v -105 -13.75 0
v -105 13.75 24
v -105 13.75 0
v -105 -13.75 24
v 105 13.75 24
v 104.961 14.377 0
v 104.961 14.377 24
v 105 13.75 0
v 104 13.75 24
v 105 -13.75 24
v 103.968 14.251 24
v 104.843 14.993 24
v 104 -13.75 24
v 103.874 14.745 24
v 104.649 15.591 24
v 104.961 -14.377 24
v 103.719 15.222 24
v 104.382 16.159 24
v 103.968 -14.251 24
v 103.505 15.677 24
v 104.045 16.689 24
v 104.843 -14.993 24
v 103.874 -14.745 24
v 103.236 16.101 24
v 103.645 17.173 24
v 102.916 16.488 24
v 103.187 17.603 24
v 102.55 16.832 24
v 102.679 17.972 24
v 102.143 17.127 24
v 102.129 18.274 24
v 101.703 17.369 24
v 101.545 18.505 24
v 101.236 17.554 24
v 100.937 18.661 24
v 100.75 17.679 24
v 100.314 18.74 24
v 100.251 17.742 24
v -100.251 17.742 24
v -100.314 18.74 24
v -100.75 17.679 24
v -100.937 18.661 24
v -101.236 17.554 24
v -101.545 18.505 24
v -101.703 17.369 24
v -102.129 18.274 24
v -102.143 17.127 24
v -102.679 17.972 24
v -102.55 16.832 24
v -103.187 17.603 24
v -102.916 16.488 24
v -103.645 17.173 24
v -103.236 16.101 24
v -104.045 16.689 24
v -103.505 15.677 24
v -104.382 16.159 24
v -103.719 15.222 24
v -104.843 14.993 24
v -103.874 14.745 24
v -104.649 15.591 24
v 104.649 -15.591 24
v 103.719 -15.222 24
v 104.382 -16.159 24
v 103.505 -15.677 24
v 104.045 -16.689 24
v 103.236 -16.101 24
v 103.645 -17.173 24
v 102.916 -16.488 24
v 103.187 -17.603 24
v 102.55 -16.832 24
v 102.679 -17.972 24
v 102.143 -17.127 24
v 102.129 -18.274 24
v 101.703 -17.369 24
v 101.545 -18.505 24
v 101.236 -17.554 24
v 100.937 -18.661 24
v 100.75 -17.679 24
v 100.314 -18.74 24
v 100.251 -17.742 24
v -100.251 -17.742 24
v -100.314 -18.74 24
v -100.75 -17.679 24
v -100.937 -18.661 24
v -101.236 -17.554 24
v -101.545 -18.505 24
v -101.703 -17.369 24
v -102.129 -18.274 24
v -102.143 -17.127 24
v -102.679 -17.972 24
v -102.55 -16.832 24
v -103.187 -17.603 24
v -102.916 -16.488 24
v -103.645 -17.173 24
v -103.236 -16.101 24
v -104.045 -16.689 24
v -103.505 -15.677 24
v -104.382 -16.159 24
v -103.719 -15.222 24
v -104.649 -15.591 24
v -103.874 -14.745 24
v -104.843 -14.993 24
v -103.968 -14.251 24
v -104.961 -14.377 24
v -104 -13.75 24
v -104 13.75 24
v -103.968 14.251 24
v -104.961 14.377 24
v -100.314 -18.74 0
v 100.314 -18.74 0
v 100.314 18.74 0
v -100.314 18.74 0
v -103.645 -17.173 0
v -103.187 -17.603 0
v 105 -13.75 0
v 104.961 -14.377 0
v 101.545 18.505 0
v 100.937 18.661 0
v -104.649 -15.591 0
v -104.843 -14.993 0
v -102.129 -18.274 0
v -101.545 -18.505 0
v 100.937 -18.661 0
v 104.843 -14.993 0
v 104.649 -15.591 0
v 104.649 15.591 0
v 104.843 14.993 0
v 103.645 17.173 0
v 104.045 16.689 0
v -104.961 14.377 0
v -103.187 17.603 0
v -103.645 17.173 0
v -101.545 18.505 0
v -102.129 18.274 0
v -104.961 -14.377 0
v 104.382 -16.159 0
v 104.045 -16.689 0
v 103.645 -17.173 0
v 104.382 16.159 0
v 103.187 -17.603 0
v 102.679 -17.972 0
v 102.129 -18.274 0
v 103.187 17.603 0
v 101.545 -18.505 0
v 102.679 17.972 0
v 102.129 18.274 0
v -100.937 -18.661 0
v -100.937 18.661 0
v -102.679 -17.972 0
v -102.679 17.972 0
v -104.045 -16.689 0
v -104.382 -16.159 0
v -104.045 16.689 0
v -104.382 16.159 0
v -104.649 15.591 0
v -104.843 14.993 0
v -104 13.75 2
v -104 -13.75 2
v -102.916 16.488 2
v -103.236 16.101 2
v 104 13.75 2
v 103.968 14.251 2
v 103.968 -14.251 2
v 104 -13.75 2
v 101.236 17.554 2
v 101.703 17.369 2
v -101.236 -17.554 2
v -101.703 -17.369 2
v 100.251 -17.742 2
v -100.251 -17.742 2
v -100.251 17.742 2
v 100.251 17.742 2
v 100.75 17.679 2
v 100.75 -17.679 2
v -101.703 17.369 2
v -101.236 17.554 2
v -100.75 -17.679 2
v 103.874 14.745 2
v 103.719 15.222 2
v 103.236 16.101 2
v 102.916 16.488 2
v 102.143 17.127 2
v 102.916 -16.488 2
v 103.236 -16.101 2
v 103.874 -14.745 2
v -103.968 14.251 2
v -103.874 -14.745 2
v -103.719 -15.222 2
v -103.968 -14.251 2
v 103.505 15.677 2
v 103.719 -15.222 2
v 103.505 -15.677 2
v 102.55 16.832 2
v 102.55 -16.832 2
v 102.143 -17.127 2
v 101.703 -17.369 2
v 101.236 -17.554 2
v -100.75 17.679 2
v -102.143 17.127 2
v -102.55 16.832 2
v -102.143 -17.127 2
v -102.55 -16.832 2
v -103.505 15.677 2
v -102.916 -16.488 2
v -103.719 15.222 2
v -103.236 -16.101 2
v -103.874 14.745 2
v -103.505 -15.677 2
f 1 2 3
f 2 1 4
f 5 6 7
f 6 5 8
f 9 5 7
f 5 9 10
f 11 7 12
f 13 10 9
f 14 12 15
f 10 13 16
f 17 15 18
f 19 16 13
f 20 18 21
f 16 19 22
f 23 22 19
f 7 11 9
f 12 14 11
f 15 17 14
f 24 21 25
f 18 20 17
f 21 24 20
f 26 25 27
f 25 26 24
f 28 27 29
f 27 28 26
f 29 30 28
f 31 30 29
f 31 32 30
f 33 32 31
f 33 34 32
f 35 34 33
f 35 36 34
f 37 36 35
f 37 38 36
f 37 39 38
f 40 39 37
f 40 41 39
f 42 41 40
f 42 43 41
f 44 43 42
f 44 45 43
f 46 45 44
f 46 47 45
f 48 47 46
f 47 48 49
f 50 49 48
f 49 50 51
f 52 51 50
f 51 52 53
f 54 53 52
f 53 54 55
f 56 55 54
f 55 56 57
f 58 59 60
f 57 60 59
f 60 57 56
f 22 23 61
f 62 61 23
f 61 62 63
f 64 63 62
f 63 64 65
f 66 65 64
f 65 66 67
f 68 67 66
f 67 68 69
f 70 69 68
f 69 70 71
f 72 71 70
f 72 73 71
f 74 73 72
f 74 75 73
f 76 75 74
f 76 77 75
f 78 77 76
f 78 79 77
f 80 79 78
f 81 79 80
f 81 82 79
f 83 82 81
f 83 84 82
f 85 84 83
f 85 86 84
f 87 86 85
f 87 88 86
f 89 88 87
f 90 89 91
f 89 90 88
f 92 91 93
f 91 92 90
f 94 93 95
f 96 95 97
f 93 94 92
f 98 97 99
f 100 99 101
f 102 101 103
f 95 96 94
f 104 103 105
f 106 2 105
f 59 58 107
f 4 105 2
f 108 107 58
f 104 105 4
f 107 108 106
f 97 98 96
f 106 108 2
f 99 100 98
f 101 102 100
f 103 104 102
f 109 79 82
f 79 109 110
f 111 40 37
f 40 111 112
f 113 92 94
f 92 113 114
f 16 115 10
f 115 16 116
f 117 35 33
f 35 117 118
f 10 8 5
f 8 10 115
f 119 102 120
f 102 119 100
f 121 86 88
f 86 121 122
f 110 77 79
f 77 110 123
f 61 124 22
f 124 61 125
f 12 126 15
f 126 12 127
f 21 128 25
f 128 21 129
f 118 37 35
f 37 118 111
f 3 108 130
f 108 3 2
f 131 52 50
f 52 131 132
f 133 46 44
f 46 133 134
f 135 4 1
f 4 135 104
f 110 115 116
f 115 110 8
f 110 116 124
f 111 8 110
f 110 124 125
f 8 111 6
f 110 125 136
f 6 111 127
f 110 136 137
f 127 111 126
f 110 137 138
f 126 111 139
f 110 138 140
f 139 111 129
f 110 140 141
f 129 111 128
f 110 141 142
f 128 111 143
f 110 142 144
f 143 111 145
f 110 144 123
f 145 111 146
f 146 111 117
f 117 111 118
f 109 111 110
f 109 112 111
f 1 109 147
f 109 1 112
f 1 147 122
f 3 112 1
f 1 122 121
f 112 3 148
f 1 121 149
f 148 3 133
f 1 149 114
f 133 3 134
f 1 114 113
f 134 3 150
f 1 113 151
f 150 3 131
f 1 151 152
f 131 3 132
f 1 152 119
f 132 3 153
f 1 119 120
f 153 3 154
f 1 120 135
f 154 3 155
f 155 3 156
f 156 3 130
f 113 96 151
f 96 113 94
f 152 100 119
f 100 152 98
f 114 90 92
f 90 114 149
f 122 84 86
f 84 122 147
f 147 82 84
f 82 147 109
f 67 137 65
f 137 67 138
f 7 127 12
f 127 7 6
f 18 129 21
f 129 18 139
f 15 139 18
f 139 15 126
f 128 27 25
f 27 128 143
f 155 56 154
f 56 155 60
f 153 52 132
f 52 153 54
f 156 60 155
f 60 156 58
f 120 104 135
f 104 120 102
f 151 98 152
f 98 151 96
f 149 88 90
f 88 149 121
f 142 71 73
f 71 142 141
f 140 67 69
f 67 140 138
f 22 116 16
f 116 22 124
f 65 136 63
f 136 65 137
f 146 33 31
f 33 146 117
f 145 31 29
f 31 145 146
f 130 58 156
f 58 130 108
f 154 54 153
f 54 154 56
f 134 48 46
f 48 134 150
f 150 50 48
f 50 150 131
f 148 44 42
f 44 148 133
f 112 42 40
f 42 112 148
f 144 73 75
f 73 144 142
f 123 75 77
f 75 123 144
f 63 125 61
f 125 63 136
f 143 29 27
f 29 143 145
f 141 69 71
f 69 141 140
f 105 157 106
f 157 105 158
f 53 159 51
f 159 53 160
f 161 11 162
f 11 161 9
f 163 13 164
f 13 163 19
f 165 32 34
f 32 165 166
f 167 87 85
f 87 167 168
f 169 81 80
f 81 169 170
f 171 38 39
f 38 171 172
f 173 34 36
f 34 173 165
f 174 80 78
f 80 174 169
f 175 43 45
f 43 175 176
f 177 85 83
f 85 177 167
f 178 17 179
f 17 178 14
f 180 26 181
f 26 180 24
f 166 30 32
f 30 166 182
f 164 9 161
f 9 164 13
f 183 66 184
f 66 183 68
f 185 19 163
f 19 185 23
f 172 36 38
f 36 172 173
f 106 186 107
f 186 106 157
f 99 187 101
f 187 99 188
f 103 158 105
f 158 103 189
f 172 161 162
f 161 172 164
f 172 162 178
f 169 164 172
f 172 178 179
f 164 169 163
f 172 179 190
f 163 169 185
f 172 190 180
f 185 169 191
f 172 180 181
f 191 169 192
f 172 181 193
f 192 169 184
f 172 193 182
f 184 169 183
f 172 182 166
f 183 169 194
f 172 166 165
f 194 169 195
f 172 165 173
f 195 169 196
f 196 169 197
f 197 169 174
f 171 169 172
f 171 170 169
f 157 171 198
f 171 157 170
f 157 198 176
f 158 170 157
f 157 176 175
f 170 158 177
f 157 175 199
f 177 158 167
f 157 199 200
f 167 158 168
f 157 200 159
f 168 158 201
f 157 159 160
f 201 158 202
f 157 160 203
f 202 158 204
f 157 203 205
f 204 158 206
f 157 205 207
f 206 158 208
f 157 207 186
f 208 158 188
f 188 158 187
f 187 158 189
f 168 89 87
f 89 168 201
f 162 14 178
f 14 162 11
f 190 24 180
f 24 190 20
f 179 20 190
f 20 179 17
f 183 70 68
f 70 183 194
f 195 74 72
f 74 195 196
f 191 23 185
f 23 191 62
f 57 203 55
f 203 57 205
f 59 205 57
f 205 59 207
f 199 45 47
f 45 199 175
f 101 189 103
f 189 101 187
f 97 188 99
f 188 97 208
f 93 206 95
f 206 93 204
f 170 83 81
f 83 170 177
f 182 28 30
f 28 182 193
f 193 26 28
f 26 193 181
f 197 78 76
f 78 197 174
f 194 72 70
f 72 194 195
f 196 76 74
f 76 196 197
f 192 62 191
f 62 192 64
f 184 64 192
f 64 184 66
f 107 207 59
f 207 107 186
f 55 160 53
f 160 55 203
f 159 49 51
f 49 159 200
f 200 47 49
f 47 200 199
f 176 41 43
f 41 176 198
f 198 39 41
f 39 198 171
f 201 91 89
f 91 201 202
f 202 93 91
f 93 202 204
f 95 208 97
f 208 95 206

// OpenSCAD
$fn = 50;


difference() {
	union() {
		hull() {
			translate(v = [-100.0000000000, 13.7500000000, 0]) {
				cylinder(h = 24, r = 5);
			}
			translate(v = [100.0000000000, 13.7500000000, 0]) {
				cylinder(h = 24, r = 5);
			}
			translate(v = [-100.0000000000, -13.7500000000, 0]) {
				cylinder(h = 24, r = 5);
			}
			translate(v = [100.0000000000, -13.7500000000, 0]) {
				cylinder(h = 24, r = 5);
			}
		}
	}
	union() {
		translate(v = [0, 0, 2]) {
			hull() {
				translate(v = [-100.0000000000, 13.7500000000, 0]) {
					cylinder(h = 22, r = 4);
				}
				translate(v = [100.0000000000, 13.7500000000, 0]) {
					cylinder(h = 22, r = 4);
				}
				translate(v = [-100.0000000000, -13.7500000000, 0]) {
					cylinder(h = 22, r = 4);
				}
				translate(v = [100.0000000000, -13.7500000000, 0]) {
					cylinder(h = 22, r = 4);
				}
			}
		}
	}
}
